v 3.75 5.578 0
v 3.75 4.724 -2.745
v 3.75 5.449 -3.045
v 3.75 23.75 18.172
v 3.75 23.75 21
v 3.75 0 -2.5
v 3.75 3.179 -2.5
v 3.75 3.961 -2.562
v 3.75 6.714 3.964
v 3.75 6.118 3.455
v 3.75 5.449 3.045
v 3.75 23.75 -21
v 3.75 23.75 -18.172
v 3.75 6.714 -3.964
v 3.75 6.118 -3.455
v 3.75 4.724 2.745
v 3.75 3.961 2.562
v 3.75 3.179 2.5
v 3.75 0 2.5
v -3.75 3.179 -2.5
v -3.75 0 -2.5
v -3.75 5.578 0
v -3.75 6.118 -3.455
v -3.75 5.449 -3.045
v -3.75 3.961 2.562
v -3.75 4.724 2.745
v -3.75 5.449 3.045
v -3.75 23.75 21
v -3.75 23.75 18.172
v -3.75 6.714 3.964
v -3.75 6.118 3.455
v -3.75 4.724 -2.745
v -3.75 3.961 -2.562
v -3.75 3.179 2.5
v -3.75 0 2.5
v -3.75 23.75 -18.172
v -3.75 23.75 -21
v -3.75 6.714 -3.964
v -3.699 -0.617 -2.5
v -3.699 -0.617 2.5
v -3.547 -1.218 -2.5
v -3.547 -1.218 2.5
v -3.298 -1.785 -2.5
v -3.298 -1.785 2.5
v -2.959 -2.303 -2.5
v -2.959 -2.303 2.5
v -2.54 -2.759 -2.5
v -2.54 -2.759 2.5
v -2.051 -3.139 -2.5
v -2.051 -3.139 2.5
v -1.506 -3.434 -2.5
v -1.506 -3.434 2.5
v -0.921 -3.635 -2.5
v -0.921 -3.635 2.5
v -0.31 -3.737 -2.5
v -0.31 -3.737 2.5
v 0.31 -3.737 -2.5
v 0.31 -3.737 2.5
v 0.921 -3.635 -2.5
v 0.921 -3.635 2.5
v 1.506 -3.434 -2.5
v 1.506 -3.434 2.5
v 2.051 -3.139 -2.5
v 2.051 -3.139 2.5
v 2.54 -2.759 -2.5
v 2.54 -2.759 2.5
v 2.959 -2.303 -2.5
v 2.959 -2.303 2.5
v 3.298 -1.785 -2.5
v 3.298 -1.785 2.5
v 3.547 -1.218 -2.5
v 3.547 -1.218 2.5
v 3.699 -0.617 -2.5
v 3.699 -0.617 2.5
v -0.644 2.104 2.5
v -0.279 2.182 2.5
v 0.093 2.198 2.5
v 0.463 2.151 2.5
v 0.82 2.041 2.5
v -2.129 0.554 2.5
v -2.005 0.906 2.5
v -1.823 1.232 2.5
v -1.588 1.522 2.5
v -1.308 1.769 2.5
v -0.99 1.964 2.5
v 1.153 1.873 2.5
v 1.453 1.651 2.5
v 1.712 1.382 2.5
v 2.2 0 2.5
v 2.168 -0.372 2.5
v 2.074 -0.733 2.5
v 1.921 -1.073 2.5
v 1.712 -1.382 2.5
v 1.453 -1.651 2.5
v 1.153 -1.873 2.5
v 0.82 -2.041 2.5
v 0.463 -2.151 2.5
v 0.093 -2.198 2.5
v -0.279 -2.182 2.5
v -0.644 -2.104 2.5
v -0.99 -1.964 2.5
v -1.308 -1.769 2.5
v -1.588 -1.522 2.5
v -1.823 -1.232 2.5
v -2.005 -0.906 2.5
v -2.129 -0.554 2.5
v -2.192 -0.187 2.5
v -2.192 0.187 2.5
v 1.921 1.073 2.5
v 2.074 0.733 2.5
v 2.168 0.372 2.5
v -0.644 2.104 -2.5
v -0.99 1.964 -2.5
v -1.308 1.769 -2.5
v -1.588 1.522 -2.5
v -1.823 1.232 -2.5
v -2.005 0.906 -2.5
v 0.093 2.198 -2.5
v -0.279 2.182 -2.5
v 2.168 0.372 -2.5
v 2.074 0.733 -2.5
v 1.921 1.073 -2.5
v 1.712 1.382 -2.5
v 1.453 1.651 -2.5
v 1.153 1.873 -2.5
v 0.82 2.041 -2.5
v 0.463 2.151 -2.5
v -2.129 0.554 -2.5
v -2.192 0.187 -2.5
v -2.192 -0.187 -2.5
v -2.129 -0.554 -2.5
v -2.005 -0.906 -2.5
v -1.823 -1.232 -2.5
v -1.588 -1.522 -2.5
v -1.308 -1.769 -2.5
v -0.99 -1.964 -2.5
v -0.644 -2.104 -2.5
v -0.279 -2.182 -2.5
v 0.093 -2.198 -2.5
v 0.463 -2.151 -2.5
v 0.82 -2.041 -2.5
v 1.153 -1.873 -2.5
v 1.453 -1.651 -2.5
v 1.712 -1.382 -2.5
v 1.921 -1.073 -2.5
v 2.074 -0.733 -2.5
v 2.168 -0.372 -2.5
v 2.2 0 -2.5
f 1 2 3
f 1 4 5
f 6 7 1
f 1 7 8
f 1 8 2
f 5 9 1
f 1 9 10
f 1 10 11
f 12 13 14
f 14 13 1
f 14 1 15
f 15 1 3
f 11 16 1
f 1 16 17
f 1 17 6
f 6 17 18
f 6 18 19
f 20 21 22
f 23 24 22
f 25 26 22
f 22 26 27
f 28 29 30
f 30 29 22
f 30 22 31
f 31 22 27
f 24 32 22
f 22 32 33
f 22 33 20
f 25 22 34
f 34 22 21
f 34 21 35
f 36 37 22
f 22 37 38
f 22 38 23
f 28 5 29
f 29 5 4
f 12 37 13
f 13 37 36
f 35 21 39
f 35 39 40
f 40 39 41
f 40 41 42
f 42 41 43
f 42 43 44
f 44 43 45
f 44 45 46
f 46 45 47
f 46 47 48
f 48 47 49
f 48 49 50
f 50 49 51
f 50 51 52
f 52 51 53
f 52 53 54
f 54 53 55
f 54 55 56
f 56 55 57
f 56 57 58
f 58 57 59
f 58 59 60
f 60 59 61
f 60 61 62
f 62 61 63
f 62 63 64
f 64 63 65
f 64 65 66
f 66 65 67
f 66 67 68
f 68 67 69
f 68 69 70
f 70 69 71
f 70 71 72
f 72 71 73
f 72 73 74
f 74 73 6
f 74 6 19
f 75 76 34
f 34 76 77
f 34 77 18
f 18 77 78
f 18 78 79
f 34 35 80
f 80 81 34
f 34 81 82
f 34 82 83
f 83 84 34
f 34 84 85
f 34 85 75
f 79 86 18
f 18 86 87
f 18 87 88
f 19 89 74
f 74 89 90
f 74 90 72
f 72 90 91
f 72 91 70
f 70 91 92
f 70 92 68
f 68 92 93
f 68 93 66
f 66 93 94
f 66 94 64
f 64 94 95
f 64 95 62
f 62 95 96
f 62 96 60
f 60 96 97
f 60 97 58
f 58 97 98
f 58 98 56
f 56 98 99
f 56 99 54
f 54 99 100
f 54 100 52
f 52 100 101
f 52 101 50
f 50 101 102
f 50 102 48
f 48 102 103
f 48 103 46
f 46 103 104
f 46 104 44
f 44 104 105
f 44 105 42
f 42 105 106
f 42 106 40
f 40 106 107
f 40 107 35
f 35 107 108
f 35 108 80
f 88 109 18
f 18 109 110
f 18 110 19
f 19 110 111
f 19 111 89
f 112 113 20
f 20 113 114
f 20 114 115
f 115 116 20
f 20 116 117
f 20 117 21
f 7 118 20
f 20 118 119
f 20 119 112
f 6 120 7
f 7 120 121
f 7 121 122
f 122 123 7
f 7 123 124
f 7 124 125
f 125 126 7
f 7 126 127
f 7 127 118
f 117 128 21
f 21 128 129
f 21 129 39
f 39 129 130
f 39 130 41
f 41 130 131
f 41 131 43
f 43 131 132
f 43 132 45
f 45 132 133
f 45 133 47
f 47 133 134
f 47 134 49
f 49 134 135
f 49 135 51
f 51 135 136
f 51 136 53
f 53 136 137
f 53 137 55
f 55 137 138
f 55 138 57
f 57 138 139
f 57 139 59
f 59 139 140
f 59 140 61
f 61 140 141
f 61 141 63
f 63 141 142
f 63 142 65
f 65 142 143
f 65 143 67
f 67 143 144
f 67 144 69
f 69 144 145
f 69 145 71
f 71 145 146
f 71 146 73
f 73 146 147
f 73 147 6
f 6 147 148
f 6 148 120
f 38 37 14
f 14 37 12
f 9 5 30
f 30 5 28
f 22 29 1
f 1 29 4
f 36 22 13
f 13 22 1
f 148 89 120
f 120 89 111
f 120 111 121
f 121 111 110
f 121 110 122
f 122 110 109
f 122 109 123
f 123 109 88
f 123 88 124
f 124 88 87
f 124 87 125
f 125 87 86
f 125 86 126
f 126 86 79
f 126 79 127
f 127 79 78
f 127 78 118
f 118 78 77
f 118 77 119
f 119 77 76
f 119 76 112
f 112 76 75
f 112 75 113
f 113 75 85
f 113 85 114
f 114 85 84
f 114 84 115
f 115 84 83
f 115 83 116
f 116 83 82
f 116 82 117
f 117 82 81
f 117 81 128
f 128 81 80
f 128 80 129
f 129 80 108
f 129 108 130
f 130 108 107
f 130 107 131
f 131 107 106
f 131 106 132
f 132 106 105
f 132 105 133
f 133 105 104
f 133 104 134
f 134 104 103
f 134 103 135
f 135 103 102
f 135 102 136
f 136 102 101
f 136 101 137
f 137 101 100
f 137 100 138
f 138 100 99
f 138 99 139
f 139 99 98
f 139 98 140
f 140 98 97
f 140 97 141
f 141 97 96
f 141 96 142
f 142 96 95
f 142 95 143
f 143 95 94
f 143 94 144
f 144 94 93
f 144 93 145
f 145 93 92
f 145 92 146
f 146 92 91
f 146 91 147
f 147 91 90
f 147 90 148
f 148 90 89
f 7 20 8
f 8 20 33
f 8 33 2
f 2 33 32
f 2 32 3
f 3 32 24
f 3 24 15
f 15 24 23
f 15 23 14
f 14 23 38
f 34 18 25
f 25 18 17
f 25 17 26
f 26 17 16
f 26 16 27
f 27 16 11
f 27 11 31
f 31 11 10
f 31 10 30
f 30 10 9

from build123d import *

# Parameters (mm, degrees)
BOSS_EXTRUDE1_DEPTH             = 2.5
BOSS_EXTRUDE2_REACH             = 7.863
BOSS_EXTRUDE2_DIRECTION_2_REACH = 7.863
CUT_EXTRUDE2_DEPTH              = 33.577791515
CUT_EXTRUDE2_DEPTH_BACK         = 33.577791515
SKETCH5_W                       = 5
SKETCH5_H                       = 1.5
BOSS_EXTRUDE3_DEPTH             = 7.5
SKETCH6_R                       = 2.2
CUT_EXTRUDE4_DEPTH              = 10
FILLET1_R                       = 5


with BuildPart() as part:
    # Sketch1 → Boss-Extrude1 (new, symmetric)
    with BuildSketch(Plane.XY):
        with BuildLine():
            Line((-3.75, 0), (-3.75, 3.75))
            Line((-3.75, 3.75), (3.75, 3.75))
            Line((3.75, 3.75), (3.75, 0))
            ThreePointArc((3.75, 0), (0, -3.75), (-3.75, 0))
        make_face()
    extrude(amount=BOSS_EXTRUDE1_DEPTH, both=True)

    # Boss-Extrude2: up to this face of the body (flat: up to its plane)
    boss_extrude2_end = Plane(part.part.faces().sort_by_distance((3.75, 1.875, 0))[0])
    # Sketch3 → Boss-Extrude2 (add, up to the picked face)
    with BuildSketch(Plane(origin=(0, 0, 0), x_dir=(0, 0, -1), z_dir=(1, 0, 0)), mode=Mode.PRIVATE) as boss_extrude2_sk1:
        Polygon((0, 2.75), (21, 23.75), (-21, 23.75), align=None)
    boss_extrude2_tool1 = split(extrude(boss_extrude2_sk1.sketch, amount=BOSS_EXTRUDE2_REACH, mode=Mode.PRIVATE), bisect_by=boss_extrude2_end, keep=Keep.BOTH, mode=Mode.PRIVATE)
    add(boss_extrude2_tool1.solids().sort_by(Axis((0, 16.75, 0), (1, 0, 0)))[0])

    # Boss-Extrude2 direction 2: up to this face of the body (flat: up to its plane)
    boss_extrude2_direction_2_end = Plane(part.part.faces().sort_by_distance((-3.75, 1.875, 0))[0])
    # Sketch3 → Boss-Extrude2 direction 2 (add, up to the picked face)
    with BuildSketch(Plane(origin=(0, 0, 0), x_dir=(0, 0, -1), z_dir=(1, 0, 0)), mode=Mode.PRIVATE) as boss_extrude2_direction_2_sk1:
        Polygon((0, 2.75), (21, 23.75), (-21, 23.75), align=None)
    boss_extrude2_direction_2_tool1 = split(extrude(boss_extrude2_direction_2_sk1.sketch, amount=-BOSS_EXTRUDE2_DIRECTION_2_REACH, mode=Mode.PRIVATE), bisect_by=boss_extrude2_direction_2_end, keep=Keep.BOTH, mode=Mode.PRIVATE)
    add(boss_extrude2_direction_2_tool1.solids().sort_by(Axis((0, 16.75, 0), (-1, 0, 0)))[0])

    # Sketch4 → Cut-Extrude2 (cut, two sides: drawn at the far end of the back side and taken through both)
    with BuildSketch(Plane(origin=(3.75, 0, 0), x_dir=(0, 0, -1), z_dir=(1, 0, 0)).offset(-CUT_EXTRUDE2_DEPTH_BACK)):
        Polygon((-18.171572875, 23.75), (0, 5.578427125), (18.171572875, 23.75), align=None)
    extrude(amount=CUT_EXTRUDE2_DEPTH + CUT_EXTRUDE2_DEPTH_BACK, mode=Mode.SUBTRACT)

    # Sketch5 → Boss-Extrude3 (add)
    with BuildSketch(Plane(origin=(3.75, 0, 0), x_dir=(0, 0, -1), z_dir=(1, 0, 0))):
        with Locations((0, 4.5)):
            Rectangle(SKETCH5_W, SKETCH5_H)
    extrude(amount=-BOSS_EXTRUDE3_DEPTH)

    # Sketch6 → Cut-Extrude4 (cut)
    with BuildSketch(Plane.XY.offset(2.5)):
        Circle(SKETCH6_R)
    extrude(amount=-CUT_EXTRUDE4_DEPTH, mode=Mode.SUBTRACT)

    # Fillet1
    fillet1_edges = [part.edges().sort_by_distance(p)[0] for p in [
        (0, 5.25, 2.5),
        (0, 5.25, -2.5),
    ]]
    fillet(fillet1_edges, radius=FILLET1_R)


solid = part.part
